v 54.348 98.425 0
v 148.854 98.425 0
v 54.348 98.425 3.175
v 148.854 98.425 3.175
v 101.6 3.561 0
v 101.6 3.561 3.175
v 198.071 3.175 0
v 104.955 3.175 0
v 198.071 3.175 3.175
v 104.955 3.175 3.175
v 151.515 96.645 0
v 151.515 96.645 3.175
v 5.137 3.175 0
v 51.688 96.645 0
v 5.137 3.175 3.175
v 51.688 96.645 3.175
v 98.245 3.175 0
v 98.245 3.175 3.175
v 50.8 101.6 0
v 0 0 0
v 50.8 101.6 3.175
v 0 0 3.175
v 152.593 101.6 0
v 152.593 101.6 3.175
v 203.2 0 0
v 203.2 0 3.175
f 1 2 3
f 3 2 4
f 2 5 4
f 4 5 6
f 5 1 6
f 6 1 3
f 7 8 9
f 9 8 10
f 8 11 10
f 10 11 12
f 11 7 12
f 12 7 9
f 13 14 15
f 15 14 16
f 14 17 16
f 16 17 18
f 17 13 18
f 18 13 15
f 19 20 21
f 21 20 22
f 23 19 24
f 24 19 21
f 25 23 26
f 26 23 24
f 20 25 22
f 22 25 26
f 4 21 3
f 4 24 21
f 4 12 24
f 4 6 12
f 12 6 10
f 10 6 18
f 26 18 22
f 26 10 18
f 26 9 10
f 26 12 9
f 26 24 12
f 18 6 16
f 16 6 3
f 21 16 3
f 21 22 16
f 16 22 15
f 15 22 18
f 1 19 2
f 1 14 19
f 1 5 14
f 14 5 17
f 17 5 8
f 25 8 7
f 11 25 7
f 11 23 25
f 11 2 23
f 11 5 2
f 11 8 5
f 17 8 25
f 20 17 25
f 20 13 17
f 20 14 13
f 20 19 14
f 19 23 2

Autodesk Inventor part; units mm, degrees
ref_plane "YZ Plane" through (0, 0, 0) normal (1, 0, 0) x (0, 1, 0)
ref_plane "XZ Plane" through (0, 0, 0) normal (0, 1, 0) x (-1, 0, 0)
ref_plane "XY Plane" through (0, 0, 0) normal (0, 0, 1) x (1, 0, 0)
sketch "Sketch1" plane through (0, 0, 0) normal (0, 0, 1) x (1, 0, 0)
  line L0 (0, 0) -> (203.2, 0)
  line L1 (152.5934, 101.6) -> (50.8, 101.6)
  line L2 (101.6, 0) -> (76.2, 0) construction
  line L3 (127, 101.6) -> (152.5934, 101.6)
  line L4 (0, 0) -> (3.175, 0) construction
  line L5 (152.5934, 101.6) -> (203.2, 0)
  line L6 (50.8, 101.6) -> (0, 0)
  line L7 (52.5749, 98.425) -> (52.6684, 98.2373)
  line L8 (31.4673, 0) -> (31.4673, 3.175) construction
  line L9 (31.4673, 3.175) -> (5.1373, 3.175)
  line L10 (22.7402, 38.3809) -> (5.1373, 3.175)
  line L11 (5.1373, 3.175) -> (51.6882, 96.6446)
  line L12 (176.1115, 47.2628) -> (198.0715, 3.175)
  line L13 (176.1115, 47.2628) -> (151.5146, 96.6447)
  line L14 (54.3484, 98.425) -> (148.8543, 98.425)
  line L15 (66.9801, 65.9439) -> (98.245, 3.175) construction
  line L16 (98.245, 3.175) -> (51.6882, 96.6446)
  line L17 (69.822, 67.3595) -> (54.3484, 98.425)
  line L18 (69.822, 67.3595) -> (101.6, 3.5605)
  line L19 (129.9466, 60.4672) -> (148.8543, 98.425)
  line L20 (132.7885, 59.0516) -> (151.5146, 96.6447)
  line L21 (148.8543, 98.425) -> (101.6, 3.5605)
  line L22 (132.7885, 59.0516) -> (104.9551, 3.175)
  line L23 (98.245, 3.175) -> (31.4673, 3.175)
  line L24 (201.6185, 3.175) -> (104.9551, 3.175)
  dimension "d0" = 203.2
  dimension "d40" = 3.175
  dimension "d42" = 3.175
  dimension "d44" = 3.175
  dimension "d45" = 3.175
  dimension "d51" = 101.6
  dimension "d52" = 93.4696
  dimension "d53" = 94.5059
  dimension "d54" = 96.6634
extrude "Extrusion2" add sketch "Sketch1" along normal blind 3.175
properties part number "Truss 3Tri"
